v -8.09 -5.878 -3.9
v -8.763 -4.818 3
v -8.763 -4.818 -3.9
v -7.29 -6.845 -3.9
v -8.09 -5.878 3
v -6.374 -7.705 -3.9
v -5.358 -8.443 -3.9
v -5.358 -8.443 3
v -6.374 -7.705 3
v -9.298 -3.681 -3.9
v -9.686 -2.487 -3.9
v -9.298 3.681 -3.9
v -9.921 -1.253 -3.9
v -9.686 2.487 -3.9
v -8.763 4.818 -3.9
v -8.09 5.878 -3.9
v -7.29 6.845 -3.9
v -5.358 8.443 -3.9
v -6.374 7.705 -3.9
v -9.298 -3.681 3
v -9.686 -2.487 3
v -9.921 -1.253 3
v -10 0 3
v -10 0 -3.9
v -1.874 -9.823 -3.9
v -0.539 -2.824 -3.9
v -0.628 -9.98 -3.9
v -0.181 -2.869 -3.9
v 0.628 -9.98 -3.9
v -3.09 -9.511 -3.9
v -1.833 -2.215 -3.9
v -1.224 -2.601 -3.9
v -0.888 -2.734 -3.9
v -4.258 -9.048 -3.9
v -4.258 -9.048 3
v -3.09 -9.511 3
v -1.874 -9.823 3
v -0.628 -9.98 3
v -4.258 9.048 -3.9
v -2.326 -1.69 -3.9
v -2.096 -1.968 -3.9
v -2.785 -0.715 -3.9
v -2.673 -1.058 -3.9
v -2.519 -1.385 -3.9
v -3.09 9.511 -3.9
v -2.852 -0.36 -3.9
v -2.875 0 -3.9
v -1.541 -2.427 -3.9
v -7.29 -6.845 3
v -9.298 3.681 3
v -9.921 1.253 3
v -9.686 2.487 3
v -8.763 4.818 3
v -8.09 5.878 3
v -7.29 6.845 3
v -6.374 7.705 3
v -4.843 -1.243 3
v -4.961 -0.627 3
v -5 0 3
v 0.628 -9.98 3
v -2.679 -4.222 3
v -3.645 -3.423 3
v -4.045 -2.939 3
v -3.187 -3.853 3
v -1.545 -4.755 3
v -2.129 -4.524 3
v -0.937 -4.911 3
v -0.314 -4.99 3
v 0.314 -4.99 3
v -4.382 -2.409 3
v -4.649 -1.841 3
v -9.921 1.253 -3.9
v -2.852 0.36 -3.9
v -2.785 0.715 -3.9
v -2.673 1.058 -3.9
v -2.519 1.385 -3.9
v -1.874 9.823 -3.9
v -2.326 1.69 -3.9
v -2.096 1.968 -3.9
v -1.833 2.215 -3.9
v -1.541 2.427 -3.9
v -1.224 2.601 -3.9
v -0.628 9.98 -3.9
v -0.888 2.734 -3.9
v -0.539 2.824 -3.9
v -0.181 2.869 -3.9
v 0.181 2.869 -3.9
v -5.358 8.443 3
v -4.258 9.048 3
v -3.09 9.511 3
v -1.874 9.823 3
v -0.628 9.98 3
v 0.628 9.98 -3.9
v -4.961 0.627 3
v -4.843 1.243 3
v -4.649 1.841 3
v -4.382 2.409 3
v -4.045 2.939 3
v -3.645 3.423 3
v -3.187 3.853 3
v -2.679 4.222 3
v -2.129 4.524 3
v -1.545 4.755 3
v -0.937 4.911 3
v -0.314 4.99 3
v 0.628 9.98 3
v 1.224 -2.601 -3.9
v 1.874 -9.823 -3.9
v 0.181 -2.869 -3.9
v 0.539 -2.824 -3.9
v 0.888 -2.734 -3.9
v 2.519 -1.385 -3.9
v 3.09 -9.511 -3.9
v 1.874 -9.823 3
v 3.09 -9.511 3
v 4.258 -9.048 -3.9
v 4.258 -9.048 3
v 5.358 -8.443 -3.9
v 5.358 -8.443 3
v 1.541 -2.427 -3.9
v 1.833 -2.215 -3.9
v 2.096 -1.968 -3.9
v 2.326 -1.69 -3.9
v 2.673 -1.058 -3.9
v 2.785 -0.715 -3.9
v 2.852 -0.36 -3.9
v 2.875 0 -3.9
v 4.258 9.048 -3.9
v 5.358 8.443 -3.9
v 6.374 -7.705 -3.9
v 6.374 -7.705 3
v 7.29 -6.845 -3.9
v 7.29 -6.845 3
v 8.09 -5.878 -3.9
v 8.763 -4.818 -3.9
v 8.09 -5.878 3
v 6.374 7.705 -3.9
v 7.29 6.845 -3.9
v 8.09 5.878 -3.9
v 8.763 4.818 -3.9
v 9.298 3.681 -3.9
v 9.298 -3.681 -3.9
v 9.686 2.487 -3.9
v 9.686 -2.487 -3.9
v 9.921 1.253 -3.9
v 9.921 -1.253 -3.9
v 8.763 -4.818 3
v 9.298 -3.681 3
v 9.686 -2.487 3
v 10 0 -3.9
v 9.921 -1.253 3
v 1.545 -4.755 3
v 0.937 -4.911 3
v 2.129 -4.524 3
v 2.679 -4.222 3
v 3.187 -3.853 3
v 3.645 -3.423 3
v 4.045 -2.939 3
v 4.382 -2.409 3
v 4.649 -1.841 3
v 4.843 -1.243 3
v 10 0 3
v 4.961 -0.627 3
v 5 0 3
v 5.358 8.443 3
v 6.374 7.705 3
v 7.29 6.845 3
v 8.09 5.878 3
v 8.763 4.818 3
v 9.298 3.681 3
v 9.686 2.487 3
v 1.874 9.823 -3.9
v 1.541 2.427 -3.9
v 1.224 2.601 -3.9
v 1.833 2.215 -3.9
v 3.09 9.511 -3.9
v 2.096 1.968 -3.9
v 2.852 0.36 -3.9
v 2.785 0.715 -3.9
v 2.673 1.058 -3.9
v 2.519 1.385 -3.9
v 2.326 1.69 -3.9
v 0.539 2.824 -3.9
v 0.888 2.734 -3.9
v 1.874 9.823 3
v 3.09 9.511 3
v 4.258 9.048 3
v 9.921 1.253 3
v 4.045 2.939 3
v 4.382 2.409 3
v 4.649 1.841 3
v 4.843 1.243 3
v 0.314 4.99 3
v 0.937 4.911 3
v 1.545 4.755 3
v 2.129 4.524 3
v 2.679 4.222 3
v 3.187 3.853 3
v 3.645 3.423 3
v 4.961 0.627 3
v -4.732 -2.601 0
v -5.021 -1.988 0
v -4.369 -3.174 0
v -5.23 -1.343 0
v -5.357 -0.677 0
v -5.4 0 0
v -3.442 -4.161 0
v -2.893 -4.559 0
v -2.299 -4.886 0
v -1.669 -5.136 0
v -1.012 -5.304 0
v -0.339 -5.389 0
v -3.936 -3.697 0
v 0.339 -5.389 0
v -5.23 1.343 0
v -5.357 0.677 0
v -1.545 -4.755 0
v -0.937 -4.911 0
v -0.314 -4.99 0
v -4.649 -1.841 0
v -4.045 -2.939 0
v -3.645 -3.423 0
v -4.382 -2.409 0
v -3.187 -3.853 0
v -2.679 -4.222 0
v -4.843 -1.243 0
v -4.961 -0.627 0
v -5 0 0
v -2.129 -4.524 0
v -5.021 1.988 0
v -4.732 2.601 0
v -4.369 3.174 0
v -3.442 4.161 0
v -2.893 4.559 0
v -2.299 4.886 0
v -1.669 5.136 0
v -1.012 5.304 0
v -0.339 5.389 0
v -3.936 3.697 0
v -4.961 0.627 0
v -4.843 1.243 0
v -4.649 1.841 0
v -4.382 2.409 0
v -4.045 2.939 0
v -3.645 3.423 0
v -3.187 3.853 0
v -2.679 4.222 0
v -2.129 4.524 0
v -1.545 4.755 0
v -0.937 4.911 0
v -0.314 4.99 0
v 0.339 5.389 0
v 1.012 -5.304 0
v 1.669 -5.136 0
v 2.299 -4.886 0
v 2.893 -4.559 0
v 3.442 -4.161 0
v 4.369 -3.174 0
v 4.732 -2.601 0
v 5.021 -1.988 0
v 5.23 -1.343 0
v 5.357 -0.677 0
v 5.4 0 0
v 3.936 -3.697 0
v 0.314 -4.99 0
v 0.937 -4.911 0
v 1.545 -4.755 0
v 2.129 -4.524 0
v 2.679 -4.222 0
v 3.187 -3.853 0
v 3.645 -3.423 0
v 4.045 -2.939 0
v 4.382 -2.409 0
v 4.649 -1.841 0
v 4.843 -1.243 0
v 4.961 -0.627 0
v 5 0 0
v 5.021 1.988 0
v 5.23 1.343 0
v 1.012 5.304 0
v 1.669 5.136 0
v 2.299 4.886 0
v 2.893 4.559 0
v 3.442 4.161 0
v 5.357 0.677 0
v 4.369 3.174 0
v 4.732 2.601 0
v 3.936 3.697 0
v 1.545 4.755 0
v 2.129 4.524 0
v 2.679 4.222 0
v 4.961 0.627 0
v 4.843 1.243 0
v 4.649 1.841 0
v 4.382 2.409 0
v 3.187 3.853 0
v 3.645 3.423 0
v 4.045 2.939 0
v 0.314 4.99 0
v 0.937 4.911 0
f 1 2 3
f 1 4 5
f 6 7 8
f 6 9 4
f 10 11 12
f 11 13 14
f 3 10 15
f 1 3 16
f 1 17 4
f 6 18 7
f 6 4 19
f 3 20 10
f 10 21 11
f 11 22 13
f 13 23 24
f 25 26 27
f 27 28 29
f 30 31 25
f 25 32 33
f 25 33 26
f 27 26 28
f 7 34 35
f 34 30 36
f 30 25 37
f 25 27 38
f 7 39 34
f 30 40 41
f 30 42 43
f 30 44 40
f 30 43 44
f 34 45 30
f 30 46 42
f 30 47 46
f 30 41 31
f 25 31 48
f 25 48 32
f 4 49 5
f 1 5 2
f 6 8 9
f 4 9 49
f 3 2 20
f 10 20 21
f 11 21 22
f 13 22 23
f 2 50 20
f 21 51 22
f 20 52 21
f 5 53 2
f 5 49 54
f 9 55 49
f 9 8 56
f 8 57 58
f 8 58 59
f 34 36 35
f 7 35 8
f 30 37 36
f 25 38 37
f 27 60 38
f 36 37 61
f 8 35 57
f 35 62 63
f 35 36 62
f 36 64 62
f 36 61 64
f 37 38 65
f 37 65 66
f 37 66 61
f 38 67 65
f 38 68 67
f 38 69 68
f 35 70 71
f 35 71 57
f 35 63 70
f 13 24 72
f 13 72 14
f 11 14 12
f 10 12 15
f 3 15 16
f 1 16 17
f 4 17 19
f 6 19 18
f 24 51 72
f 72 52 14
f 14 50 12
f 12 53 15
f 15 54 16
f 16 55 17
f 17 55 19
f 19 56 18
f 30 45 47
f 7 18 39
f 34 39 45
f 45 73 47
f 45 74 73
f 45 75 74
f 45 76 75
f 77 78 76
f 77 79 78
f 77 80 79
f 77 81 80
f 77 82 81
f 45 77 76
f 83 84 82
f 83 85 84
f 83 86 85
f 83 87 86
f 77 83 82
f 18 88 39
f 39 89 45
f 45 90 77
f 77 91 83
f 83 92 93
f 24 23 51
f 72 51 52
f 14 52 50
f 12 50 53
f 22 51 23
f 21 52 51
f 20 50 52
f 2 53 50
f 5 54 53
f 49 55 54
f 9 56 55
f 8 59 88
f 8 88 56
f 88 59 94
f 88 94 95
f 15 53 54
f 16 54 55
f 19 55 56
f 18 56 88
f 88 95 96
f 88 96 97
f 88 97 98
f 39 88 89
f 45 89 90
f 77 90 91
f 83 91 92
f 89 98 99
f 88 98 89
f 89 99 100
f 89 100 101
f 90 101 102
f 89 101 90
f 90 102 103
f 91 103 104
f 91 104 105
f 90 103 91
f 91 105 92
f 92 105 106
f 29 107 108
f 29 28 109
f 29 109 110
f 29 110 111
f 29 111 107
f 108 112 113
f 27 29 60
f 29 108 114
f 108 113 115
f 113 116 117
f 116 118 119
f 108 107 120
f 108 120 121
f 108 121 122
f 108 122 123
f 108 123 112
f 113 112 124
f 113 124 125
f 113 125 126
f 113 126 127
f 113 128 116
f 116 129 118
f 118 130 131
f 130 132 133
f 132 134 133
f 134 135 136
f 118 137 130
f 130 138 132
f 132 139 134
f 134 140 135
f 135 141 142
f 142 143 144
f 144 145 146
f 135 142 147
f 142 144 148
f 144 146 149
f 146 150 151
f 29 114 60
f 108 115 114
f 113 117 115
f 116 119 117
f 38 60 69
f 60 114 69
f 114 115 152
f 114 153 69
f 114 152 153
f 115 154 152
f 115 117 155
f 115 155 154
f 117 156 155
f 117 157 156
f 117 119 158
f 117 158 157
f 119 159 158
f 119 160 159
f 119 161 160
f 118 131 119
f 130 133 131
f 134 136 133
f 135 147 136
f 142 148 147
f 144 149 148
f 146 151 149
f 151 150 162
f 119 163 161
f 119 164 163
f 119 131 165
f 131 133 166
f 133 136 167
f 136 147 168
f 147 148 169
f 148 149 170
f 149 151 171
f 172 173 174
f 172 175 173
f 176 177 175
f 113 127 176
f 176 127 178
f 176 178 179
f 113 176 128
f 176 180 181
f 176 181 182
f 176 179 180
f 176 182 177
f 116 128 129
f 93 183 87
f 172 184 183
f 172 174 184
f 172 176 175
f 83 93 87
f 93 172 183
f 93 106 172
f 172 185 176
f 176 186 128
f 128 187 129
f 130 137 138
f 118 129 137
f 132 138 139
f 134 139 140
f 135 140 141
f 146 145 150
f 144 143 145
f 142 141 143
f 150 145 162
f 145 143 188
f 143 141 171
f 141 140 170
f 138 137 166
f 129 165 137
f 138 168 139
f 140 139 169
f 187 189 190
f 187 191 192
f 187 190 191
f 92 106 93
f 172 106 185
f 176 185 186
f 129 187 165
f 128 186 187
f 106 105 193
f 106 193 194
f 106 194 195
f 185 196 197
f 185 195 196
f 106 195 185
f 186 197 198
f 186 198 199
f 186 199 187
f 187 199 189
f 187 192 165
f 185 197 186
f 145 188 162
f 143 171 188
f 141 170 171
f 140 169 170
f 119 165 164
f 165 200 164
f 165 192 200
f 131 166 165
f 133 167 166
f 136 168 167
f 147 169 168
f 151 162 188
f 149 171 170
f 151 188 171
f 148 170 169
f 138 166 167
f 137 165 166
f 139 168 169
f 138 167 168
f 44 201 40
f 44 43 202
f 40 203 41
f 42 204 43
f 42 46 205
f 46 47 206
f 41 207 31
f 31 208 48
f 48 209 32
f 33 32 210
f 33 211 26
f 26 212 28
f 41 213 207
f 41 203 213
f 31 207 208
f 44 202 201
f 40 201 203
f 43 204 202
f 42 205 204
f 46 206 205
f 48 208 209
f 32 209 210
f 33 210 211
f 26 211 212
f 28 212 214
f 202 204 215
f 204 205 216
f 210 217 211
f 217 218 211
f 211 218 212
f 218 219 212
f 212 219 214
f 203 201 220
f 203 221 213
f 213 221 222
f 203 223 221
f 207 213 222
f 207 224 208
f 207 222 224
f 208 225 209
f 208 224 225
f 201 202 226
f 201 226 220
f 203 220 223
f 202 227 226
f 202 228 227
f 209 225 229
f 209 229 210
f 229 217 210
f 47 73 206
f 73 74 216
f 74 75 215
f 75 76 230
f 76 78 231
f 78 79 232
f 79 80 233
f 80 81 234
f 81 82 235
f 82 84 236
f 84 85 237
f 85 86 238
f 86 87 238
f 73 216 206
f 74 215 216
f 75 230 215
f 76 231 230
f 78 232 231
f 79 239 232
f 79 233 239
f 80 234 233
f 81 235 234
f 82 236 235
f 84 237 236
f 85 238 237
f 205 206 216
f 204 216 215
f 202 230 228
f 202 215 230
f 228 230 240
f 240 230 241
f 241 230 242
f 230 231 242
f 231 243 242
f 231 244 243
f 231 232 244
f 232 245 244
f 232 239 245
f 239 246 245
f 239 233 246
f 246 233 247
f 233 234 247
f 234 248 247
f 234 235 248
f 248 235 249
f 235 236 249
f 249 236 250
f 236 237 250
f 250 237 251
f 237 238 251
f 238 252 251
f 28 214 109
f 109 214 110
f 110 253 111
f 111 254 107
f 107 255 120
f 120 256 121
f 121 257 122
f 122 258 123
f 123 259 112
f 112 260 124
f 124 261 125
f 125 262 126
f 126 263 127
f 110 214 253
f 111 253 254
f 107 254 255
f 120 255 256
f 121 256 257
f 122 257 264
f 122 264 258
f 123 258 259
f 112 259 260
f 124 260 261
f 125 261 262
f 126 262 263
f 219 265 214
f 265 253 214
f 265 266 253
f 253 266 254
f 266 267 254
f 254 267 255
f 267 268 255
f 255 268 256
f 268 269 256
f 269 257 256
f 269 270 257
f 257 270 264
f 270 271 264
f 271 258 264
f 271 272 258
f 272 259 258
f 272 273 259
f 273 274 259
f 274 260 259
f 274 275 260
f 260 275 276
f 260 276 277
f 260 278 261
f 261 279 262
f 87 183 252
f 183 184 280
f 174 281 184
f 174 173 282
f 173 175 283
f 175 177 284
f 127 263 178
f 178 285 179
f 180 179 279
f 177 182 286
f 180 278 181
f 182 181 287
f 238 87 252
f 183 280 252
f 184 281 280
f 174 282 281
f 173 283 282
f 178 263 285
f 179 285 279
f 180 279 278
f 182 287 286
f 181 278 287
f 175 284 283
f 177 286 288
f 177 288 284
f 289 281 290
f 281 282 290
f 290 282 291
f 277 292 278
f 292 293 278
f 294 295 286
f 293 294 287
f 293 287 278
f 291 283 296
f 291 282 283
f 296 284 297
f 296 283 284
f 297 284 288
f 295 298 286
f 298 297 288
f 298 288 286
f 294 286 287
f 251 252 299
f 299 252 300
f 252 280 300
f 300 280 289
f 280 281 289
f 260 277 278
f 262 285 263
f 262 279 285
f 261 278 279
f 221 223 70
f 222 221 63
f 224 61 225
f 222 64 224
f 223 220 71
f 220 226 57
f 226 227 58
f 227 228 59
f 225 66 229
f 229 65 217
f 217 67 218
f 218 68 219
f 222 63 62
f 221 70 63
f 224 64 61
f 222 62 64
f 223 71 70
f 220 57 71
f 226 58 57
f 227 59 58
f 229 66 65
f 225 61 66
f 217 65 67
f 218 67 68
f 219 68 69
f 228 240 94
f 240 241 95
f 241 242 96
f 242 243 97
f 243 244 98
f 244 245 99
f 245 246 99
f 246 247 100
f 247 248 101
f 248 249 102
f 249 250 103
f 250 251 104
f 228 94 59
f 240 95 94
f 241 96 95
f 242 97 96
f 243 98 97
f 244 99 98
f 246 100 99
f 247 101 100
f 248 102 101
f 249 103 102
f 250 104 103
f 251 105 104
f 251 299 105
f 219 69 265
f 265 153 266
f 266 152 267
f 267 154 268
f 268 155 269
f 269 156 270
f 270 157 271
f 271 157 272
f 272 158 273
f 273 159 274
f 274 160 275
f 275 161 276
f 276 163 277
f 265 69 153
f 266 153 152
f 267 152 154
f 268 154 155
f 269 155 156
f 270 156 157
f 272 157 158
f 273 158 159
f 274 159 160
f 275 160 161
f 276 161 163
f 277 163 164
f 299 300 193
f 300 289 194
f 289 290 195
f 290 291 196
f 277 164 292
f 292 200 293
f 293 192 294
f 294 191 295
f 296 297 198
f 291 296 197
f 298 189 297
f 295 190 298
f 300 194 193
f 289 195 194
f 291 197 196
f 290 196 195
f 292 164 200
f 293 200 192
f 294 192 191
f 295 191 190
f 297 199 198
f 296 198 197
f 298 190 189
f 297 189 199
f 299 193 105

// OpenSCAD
$fn = 50;

difference() {
	union() {
		translate(v = [0, 0, -3.9000000000000004]) {
			cylinder(h = 6.9, r = 10.0);
		}
		#translate(v = [0, 0, -6.9]) {
			cylinder(h = 6.9, r = 2.875);
		}
	}
	union() {
		translate(v = [0, 0, 0]) {
			rotate(a = [0, 0, 0]) {
				difference() {
					union() {
						translate(v = [0, 0, -6.9]) {
							cylinder(h = 6.9, r = 2.6);
						}
						translate(v = [0, 0, -3.9]) {
							cylinder(h = 3.9, r1 = 2.875, r2 = 5.4);
						}
						translate(v = [0, 0, -6.9]) {
							cylinder(h = 6.9, r = 2.875);
						}
						translate(v = [0, 0, -6.9]) {
							cylinder(h = 6.9, r = 2.6);
						}
					}
					union();
				}
			}
		}
		#cylinder(h = 3, r = 5.0);
	}
}
